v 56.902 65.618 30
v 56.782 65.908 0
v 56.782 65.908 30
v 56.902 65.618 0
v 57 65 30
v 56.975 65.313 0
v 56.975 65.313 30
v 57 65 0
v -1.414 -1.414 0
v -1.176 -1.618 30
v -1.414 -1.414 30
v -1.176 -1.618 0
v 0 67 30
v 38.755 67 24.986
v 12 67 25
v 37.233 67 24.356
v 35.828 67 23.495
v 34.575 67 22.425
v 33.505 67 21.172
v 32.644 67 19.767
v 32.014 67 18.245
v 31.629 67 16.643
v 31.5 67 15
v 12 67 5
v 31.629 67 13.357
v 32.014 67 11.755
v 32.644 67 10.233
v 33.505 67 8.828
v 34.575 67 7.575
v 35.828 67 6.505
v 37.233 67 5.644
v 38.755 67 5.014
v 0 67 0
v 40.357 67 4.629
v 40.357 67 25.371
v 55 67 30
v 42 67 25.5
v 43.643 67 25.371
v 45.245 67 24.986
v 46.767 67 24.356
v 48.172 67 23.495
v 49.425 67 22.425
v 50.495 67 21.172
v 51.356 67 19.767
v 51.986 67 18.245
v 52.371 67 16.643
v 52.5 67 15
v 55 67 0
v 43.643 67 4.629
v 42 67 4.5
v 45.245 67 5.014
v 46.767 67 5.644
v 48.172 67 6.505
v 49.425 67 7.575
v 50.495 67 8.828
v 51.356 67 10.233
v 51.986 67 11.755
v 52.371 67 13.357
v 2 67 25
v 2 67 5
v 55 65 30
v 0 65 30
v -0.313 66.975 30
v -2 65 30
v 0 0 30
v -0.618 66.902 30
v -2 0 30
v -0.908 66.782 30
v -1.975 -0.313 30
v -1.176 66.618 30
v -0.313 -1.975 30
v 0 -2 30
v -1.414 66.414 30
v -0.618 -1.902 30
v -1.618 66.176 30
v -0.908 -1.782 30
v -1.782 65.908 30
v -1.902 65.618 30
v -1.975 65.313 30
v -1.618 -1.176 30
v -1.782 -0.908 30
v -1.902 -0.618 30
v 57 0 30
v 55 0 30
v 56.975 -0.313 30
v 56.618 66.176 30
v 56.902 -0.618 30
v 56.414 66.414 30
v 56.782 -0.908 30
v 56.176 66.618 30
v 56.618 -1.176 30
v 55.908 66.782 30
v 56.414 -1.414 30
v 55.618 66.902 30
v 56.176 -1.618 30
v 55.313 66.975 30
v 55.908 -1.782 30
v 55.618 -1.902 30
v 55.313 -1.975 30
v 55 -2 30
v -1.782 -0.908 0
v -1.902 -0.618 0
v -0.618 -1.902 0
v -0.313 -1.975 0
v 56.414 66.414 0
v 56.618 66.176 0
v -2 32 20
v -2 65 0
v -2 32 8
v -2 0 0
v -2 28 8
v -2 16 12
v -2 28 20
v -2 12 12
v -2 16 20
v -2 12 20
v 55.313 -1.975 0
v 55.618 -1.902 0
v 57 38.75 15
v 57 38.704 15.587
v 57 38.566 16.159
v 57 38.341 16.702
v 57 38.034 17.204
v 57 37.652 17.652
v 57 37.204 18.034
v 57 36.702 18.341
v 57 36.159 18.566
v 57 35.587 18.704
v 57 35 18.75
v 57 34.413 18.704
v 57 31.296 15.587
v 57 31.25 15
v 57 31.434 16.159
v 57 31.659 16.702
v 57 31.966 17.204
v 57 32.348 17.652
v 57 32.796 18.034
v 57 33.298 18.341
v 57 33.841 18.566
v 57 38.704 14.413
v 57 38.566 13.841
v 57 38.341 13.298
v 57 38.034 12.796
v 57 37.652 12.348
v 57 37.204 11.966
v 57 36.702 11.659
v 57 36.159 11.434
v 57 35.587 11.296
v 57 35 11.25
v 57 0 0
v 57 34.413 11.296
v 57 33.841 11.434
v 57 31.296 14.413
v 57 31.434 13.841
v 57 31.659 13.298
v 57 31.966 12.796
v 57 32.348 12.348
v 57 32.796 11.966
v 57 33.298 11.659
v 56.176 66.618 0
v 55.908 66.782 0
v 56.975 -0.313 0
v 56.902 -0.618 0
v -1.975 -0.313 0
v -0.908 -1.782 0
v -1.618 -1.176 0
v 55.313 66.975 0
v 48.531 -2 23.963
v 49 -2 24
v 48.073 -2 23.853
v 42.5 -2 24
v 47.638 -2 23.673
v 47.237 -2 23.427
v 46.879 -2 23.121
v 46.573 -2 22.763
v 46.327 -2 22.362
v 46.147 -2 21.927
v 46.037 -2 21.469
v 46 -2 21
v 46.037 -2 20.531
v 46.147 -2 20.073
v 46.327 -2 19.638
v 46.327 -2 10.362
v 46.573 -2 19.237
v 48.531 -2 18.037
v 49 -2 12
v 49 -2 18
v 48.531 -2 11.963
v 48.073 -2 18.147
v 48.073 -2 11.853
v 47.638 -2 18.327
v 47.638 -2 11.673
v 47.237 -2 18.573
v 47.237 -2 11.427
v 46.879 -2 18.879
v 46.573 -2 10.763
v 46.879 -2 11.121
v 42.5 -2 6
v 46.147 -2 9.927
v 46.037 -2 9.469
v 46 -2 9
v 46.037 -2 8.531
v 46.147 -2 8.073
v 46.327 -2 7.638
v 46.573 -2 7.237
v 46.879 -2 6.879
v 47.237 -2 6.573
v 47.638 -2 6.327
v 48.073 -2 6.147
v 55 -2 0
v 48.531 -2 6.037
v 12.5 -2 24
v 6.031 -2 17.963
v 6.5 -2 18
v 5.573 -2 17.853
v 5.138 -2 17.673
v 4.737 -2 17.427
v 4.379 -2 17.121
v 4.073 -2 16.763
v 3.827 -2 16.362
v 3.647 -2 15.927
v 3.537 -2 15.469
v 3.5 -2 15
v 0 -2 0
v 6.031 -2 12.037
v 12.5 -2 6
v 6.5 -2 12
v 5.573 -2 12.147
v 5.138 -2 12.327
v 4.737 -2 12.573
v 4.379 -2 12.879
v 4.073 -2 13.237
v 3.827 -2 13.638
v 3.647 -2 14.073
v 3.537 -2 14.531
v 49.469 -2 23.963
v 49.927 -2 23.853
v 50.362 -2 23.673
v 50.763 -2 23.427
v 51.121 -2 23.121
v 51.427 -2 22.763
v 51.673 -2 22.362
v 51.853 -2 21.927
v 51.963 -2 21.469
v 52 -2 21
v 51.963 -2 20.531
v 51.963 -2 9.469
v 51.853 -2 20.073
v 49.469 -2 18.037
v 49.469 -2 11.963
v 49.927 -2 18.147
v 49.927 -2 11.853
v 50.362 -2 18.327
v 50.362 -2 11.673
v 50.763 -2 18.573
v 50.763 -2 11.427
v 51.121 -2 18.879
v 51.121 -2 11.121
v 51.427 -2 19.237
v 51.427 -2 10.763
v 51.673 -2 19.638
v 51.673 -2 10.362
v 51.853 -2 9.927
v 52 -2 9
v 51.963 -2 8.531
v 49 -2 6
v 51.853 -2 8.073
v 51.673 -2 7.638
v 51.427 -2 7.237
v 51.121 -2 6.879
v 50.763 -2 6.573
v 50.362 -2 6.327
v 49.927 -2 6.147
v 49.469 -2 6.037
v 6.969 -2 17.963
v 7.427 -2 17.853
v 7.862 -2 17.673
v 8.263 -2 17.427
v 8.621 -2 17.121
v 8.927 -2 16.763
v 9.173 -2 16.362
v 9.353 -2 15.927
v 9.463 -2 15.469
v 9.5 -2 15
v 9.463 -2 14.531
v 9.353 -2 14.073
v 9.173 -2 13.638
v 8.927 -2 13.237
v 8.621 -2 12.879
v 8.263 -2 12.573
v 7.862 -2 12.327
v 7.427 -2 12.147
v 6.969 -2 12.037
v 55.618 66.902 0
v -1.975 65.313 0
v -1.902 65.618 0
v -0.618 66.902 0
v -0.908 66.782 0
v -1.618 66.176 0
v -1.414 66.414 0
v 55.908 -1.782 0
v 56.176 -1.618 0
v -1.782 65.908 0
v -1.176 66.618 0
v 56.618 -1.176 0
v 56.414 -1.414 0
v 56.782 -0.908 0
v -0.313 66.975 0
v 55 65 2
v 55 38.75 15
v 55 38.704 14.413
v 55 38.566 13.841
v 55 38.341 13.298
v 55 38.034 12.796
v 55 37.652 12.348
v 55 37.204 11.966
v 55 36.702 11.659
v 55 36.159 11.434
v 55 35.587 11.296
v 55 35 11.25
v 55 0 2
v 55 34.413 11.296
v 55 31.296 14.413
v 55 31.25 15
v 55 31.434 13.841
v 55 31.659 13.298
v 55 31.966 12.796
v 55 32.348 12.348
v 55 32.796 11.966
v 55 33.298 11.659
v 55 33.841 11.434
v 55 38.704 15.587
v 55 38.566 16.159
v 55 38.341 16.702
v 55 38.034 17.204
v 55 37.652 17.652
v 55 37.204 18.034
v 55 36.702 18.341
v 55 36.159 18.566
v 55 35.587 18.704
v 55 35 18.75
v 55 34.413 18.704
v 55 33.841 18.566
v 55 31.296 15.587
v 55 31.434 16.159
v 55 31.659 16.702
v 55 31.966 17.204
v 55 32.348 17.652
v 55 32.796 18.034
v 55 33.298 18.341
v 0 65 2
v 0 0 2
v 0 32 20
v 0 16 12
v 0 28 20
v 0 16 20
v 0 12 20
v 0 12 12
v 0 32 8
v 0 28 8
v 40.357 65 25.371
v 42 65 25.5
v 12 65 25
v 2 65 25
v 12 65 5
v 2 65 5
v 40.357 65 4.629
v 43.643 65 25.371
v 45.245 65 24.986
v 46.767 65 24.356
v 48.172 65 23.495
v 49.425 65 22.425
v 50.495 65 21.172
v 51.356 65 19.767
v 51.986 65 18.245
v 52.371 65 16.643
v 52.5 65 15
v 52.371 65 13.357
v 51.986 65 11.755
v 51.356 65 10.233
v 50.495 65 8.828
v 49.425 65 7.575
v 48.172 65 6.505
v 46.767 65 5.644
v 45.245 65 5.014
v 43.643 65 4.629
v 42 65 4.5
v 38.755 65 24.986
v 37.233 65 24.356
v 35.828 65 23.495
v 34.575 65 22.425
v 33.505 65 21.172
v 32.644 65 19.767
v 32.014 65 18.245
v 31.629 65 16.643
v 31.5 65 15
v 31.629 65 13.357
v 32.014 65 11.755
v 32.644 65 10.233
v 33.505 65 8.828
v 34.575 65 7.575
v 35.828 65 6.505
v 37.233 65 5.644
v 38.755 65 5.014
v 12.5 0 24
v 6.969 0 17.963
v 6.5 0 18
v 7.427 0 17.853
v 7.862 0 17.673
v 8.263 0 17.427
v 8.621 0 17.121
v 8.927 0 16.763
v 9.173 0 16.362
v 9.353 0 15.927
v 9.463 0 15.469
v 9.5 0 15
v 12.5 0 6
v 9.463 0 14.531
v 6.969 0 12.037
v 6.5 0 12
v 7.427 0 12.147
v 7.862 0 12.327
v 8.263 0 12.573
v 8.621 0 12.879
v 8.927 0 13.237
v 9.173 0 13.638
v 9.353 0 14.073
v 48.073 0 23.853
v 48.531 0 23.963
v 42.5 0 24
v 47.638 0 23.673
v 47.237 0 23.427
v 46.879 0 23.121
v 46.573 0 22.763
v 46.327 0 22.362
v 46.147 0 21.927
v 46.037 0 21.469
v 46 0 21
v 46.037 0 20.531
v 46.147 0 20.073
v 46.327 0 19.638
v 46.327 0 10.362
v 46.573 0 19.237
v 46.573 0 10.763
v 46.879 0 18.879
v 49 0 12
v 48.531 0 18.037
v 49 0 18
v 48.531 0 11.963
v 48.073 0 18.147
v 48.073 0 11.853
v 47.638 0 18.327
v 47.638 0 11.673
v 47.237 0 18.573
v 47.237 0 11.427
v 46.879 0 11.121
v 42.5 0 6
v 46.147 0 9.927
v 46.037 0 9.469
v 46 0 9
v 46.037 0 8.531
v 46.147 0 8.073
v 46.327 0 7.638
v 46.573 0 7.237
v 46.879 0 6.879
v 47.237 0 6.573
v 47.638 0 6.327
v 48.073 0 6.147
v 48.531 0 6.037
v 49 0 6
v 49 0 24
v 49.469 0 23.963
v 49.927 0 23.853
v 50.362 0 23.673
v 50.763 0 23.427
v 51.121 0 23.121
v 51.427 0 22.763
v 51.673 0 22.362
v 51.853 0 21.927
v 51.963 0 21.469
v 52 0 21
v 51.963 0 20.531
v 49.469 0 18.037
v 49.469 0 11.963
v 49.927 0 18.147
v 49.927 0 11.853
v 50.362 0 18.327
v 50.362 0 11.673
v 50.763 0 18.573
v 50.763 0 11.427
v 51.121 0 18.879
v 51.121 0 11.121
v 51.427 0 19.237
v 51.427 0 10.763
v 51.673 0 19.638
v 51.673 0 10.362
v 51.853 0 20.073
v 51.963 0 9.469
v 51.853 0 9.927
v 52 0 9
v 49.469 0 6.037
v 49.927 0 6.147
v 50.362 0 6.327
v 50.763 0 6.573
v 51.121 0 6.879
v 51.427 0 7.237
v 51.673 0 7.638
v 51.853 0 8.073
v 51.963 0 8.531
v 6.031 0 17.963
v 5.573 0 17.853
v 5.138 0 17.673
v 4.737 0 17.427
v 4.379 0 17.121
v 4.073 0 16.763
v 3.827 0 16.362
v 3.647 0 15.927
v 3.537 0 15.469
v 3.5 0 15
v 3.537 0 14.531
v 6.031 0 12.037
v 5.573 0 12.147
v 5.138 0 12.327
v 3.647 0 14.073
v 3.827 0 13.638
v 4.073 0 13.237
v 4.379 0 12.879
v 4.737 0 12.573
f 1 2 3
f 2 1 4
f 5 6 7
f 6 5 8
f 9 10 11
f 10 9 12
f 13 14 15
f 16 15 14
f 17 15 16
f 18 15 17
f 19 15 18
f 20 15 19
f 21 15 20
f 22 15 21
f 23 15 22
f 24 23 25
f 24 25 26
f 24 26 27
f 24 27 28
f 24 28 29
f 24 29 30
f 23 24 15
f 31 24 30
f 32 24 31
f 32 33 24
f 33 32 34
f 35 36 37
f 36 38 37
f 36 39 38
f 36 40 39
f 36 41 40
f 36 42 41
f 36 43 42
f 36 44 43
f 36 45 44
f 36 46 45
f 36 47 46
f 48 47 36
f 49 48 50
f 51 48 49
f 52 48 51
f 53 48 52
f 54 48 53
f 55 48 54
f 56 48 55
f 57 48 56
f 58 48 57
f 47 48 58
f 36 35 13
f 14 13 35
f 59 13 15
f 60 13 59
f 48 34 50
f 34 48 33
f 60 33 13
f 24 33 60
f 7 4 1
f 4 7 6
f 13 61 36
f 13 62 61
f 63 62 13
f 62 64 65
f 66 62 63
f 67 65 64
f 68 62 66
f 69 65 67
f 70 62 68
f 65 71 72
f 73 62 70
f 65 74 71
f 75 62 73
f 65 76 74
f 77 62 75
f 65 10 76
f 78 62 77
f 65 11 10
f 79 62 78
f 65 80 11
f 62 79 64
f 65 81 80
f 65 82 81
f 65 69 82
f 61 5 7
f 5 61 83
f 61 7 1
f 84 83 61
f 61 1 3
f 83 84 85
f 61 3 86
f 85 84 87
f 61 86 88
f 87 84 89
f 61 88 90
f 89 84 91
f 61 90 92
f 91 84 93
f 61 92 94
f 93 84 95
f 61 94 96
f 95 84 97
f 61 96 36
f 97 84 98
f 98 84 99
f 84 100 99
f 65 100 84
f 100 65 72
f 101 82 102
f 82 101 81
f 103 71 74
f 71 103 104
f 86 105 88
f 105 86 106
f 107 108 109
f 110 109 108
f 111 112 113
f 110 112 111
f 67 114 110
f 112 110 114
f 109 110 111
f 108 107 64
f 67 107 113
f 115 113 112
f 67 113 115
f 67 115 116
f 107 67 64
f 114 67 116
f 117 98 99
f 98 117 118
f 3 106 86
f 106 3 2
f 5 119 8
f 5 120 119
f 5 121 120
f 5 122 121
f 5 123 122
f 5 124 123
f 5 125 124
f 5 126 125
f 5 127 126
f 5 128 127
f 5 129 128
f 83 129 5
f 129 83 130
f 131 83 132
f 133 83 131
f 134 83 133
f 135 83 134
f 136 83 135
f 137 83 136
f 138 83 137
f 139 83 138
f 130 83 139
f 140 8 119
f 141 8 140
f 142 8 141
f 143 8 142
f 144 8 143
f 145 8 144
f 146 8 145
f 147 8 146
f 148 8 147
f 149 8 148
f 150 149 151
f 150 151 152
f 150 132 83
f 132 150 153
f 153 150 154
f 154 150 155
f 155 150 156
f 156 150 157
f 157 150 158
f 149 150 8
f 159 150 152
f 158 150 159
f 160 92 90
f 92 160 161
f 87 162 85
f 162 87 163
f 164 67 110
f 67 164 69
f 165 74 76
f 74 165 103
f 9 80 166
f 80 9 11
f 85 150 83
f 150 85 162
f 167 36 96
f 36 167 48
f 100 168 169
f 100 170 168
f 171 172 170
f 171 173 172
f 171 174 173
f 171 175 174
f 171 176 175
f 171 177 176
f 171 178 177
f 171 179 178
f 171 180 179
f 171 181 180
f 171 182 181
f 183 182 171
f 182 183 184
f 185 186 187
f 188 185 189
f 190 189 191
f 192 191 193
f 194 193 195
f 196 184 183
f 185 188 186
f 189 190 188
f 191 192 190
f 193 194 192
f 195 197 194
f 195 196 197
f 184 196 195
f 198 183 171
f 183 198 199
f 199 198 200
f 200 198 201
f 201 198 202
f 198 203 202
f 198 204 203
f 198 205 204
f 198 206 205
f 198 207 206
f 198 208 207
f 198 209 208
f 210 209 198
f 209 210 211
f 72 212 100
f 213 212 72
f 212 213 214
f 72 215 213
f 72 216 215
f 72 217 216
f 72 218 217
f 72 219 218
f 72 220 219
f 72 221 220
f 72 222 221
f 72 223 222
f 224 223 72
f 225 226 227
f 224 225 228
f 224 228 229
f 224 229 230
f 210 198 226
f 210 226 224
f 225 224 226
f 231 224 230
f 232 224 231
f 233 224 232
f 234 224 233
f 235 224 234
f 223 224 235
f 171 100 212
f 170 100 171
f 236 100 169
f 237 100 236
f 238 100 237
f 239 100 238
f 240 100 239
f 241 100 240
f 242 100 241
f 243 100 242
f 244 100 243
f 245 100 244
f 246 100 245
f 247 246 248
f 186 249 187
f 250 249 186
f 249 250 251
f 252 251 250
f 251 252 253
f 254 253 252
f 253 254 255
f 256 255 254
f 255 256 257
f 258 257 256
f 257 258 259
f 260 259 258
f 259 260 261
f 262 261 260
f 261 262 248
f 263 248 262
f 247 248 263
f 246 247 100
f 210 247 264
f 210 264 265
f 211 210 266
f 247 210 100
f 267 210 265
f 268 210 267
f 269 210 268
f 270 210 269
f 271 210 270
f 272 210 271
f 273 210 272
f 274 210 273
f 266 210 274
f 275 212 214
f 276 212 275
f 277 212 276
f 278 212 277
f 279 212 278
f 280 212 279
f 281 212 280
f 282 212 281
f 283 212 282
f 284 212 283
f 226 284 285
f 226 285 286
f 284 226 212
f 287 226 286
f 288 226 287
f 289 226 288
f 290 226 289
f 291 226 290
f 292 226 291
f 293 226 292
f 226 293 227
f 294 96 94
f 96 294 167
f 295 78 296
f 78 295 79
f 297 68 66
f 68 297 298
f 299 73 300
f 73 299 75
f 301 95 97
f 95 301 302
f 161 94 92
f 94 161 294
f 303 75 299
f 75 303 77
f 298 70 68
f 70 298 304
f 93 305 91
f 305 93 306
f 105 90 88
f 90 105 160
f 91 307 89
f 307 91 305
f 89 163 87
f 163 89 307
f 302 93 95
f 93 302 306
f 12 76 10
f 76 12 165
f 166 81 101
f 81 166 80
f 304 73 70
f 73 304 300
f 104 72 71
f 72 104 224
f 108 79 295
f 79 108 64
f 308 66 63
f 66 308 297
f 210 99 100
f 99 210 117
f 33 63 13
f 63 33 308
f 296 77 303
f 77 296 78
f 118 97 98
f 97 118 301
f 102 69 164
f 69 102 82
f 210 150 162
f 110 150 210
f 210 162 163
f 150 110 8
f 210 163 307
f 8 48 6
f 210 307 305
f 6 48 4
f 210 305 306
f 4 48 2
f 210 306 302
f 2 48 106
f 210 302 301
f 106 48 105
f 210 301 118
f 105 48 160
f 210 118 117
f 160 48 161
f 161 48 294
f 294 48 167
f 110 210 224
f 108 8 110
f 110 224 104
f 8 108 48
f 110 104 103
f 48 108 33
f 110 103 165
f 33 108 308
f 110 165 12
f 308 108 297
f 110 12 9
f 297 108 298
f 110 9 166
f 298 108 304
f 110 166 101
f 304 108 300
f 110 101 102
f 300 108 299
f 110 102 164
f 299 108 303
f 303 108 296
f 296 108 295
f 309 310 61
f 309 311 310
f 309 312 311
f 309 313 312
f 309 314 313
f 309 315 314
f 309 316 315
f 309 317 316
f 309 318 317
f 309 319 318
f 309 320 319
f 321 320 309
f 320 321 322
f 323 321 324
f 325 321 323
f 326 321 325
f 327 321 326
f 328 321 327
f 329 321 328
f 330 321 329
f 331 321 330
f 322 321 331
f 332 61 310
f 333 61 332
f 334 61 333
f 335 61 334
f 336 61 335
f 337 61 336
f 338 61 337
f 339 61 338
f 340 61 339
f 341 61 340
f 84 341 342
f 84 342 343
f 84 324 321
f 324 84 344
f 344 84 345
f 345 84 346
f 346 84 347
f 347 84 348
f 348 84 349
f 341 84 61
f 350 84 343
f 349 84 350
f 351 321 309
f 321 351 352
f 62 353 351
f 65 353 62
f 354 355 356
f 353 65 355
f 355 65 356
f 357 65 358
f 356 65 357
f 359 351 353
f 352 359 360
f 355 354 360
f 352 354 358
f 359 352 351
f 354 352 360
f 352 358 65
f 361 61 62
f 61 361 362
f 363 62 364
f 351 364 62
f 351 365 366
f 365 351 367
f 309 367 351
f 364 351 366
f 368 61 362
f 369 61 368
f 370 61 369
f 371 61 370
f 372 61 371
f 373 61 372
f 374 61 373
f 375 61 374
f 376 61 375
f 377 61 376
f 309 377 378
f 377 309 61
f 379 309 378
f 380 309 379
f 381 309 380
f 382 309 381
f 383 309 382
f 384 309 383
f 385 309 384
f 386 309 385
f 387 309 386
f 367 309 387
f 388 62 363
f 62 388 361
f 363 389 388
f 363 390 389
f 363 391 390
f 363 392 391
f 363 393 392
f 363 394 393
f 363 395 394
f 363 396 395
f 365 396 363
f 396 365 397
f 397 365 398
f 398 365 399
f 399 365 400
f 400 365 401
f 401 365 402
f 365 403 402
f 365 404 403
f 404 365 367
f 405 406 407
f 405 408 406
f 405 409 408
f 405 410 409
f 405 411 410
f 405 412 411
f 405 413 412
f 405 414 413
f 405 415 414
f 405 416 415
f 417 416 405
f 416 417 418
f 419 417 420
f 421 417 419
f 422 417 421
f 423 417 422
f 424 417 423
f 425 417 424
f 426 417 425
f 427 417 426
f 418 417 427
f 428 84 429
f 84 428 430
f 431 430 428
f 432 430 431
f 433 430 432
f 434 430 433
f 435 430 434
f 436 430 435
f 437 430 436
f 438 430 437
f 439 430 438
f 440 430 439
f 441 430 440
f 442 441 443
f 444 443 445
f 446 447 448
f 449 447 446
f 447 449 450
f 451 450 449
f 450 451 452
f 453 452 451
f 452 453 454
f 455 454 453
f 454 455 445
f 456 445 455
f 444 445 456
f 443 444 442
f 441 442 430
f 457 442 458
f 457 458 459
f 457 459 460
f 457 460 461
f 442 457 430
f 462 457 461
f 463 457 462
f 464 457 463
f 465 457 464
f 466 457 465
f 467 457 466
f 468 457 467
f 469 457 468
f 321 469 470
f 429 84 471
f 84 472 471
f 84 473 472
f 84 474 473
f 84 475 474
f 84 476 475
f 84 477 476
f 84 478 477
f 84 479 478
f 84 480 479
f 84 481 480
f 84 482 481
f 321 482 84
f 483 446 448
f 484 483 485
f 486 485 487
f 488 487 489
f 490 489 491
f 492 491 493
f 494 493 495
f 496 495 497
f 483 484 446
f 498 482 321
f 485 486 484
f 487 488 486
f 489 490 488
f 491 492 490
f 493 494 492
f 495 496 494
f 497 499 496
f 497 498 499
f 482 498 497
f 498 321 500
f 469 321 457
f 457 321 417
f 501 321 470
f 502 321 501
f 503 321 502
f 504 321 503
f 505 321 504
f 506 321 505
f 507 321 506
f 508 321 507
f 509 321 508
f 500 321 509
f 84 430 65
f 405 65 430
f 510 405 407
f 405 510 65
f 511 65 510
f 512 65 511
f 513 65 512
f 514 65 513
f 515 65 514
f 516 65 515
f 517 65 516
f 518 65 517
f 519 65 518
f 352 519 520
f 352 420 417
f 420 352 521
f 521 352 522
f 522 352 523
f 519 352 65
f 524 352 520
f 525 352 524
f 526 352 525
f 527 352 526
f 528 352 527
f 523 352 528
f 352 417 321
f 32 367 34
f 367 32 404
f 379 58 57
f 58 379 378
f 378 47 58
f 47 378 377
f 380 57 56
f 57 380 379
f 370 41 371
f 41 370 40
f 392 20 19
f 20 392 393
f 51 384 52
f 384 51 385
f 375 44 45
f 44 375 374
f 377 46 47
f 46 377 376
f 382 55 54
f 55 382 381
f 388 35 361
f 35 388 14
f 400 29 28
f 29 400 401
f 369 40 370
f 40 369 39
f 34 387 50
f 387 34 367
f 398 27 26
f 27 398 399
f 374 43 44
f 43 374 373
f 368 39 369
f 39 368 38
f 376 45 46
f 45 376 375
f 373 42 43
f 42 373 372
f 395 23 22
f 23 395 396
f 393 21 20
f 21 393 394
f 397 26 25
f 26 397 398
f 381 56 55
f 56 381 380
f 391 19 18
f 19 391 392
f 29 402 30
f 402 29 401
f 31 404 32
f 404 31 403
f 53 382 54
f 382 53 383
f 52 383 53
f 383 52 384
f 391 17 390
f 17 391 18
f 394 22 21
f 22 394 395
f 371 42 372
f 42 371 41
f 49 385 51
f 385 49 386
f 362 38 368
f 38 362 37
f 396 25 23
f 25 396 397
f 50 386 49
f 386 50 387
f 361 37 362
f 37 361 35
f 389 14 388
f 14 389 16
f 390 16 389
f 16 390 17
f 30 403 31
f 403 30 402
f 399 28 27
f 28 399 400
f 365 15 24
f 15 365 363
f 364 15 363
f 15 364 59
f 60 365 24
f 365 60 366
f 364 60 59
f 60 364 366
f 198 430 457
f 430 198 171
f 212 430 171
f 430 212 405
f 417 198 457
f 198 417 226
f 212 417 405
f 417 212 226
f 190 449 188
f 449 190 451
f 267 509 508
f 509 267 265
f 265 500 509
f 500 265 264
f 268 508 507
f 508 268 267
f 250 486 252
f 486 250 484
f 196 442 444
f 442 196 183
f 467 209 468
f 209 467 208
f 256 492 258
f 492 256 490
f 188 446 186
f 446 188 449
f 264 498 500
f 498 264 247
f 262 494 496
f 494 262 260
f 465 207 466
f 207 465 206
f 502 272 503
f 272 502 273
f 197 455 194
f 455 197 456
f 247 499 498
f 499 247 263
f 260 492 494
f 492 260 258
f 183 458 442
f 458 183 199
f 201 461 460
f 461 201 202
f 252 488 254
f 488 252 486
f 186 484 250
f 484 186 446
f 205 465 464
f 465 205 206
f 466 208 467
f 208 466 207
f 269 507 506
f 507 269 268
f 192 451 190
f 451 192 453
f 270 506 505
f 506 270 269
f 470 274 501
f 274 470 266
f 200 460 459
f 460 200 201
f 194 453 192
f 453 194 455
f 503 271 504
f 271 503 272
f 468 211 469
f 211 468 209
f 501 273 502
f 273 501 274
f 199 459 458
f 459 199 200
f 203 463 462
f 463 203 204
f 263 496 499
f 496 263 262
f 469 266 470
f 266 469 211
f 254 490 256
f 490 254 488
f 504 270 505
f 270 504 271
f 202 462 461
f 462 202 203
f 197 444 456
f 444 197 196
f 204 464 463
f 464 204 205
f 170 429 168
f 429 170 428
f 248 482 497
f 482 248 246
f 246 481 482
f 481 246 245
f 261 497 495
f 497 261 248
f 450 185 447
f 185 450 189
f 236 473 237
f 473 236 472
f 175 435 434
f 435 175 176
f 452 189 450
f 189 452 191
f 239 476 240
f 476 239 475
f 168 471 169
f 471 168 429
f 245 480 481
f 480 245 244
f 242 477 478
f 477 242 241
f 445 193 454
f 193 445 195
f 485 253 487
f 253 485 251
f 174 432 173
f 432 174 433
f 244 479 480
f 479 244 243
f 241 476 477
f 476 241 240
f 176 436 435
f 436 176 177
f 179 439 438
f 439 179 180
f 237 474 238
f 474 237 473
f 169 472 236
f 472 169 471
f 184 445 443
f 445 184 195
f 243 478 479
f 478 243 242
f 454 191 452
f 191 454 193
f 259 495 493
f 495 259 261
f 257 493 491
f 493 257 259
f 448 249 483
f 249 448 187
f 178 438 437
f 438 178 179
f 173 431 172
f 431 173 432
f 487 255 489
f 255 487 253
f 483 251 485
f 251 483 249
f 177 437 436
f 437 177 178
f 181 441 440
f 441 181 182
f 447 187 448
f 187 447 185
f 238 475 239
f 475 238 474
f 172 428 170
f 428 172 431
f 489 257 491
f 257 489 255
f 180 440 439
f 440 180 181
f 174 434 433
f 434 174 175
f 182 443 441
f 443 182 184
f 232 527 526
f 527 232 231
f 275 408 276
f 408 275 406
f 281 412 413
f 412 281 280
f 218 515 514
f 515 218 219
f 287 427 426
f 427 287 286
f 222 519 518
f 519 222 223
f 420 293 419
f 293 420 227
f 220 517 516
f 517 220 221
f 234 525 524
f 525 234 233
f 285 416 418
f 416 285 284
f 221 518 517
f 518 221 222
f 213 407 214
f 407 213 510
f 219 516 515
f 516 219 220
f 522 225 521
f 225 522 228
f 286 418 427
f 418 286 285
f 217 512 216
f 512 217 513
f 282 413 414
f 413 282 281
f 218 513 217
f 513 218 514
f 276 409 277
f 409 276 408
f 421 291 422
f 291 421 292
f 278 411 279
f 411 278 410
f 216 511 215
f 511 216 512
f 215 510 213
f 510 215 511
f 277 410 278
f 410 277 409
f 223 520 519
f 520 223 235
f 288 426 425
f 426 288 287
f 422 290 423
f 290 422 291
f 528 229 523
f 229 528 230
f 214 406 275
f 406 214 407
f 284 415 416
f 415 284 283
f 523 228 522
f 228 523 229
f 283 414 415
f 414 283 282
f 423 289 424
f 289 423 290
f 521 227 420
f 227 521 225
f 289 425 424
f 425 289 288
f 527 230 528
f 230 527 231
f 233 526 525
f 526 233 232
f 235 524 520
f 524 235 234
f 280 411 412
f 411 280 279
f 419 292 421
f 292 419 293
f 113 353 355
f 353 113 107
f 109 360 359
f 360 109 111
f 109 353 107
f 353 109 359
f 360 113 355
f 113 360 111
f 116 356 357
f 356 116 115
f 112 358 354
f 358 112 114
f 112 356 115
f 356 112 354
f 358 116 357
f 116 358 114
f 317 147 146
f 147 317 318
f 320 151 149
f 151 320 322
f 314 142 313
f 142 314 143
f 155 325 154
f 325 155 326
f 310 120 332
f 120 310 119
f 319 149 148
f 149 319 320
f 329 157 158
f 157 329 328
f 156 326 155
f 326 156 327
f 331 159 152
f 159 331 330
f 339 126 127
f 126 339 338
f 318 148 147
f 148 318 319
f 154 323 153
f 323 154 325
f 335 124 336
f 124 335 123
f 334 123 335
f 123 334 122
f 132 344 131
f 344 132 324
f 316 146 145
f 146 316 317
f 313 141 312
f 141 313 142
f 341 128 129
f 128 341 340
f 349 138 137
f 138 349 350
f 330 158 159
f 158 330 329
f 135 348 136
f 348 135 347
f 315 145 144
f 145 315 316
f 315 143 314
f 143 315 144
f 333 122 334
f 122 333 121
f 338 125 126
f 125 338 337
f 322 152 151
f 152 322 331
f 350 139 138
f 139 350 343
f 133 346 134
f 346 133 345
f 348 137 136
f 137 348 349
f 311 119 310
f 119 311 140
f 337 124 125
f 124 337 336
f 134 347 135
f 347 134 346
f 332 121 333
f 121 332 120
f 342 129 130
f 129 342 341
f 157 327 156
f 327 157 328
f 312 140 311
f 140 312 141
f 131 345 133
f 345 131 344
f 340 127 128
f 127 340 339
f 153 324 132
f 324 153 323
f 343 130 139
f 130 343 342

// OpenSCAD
$fn=40;

box(55,65,28,2);

//translate([0,0,40])lid(55,70,2);

module box(width, depth, height,wall){
difference(){
    hull(){
        translate([0,depth,0])cylinder(r=wall,h=height+wall);
        translate([width,depth,0])cylinder(r=wall,h=height+wall);
        translate([width,0,0])cylinder(r=wall,h=height+wall);
        translate([0,0,0])cylinder(r=wall,h=height+wall);
    }
    translate([0,0,wall])cube([width,depth,height+wall]);
    
    translate([42,50,15])rotate([-90,0,0])cylinder(d=21,h=30);
    translate([2,50,5])cube([10,30,20]);
    
    translate([12.5,-5,6])cube([30,30,18]);
    
    translate([49,-5,9])rotate([-90,0,0])cylinder(d=6,h=30);
    translate([49,-5,21])rotate([-90,0,0])cylinder(d=6,h=30);
    translate([6.5,-5,15])rotate([-90,0,0])cylinder(d=6,h=30);
    translate([-5,28,8])cube([20,4,12]);
    translate([-5,12,12])cube([20,4,8]);
    
    translate([25,35,15])rotate([0,90,0])cylinder(d=7.5,h=50);
}
}


module lid(width, depth,wall){
difference(){
    hull(){
        translate([0,depth,0])cylinder(r=wall,h=wall);
        translate([width,depth,0])cylinder(r=wall,h=wall);
        translate([width,0,0])cylinder(r=wall,h=wall);
        translate([0,0,0])cylinder(r=wall,h=wall);
    }
}
difference(){
translate([0,0,-wall])cube([width,depth,wall]);
    translate([wall,0,-wall])cube([width-2*wall,depth,wall]);
}
}
